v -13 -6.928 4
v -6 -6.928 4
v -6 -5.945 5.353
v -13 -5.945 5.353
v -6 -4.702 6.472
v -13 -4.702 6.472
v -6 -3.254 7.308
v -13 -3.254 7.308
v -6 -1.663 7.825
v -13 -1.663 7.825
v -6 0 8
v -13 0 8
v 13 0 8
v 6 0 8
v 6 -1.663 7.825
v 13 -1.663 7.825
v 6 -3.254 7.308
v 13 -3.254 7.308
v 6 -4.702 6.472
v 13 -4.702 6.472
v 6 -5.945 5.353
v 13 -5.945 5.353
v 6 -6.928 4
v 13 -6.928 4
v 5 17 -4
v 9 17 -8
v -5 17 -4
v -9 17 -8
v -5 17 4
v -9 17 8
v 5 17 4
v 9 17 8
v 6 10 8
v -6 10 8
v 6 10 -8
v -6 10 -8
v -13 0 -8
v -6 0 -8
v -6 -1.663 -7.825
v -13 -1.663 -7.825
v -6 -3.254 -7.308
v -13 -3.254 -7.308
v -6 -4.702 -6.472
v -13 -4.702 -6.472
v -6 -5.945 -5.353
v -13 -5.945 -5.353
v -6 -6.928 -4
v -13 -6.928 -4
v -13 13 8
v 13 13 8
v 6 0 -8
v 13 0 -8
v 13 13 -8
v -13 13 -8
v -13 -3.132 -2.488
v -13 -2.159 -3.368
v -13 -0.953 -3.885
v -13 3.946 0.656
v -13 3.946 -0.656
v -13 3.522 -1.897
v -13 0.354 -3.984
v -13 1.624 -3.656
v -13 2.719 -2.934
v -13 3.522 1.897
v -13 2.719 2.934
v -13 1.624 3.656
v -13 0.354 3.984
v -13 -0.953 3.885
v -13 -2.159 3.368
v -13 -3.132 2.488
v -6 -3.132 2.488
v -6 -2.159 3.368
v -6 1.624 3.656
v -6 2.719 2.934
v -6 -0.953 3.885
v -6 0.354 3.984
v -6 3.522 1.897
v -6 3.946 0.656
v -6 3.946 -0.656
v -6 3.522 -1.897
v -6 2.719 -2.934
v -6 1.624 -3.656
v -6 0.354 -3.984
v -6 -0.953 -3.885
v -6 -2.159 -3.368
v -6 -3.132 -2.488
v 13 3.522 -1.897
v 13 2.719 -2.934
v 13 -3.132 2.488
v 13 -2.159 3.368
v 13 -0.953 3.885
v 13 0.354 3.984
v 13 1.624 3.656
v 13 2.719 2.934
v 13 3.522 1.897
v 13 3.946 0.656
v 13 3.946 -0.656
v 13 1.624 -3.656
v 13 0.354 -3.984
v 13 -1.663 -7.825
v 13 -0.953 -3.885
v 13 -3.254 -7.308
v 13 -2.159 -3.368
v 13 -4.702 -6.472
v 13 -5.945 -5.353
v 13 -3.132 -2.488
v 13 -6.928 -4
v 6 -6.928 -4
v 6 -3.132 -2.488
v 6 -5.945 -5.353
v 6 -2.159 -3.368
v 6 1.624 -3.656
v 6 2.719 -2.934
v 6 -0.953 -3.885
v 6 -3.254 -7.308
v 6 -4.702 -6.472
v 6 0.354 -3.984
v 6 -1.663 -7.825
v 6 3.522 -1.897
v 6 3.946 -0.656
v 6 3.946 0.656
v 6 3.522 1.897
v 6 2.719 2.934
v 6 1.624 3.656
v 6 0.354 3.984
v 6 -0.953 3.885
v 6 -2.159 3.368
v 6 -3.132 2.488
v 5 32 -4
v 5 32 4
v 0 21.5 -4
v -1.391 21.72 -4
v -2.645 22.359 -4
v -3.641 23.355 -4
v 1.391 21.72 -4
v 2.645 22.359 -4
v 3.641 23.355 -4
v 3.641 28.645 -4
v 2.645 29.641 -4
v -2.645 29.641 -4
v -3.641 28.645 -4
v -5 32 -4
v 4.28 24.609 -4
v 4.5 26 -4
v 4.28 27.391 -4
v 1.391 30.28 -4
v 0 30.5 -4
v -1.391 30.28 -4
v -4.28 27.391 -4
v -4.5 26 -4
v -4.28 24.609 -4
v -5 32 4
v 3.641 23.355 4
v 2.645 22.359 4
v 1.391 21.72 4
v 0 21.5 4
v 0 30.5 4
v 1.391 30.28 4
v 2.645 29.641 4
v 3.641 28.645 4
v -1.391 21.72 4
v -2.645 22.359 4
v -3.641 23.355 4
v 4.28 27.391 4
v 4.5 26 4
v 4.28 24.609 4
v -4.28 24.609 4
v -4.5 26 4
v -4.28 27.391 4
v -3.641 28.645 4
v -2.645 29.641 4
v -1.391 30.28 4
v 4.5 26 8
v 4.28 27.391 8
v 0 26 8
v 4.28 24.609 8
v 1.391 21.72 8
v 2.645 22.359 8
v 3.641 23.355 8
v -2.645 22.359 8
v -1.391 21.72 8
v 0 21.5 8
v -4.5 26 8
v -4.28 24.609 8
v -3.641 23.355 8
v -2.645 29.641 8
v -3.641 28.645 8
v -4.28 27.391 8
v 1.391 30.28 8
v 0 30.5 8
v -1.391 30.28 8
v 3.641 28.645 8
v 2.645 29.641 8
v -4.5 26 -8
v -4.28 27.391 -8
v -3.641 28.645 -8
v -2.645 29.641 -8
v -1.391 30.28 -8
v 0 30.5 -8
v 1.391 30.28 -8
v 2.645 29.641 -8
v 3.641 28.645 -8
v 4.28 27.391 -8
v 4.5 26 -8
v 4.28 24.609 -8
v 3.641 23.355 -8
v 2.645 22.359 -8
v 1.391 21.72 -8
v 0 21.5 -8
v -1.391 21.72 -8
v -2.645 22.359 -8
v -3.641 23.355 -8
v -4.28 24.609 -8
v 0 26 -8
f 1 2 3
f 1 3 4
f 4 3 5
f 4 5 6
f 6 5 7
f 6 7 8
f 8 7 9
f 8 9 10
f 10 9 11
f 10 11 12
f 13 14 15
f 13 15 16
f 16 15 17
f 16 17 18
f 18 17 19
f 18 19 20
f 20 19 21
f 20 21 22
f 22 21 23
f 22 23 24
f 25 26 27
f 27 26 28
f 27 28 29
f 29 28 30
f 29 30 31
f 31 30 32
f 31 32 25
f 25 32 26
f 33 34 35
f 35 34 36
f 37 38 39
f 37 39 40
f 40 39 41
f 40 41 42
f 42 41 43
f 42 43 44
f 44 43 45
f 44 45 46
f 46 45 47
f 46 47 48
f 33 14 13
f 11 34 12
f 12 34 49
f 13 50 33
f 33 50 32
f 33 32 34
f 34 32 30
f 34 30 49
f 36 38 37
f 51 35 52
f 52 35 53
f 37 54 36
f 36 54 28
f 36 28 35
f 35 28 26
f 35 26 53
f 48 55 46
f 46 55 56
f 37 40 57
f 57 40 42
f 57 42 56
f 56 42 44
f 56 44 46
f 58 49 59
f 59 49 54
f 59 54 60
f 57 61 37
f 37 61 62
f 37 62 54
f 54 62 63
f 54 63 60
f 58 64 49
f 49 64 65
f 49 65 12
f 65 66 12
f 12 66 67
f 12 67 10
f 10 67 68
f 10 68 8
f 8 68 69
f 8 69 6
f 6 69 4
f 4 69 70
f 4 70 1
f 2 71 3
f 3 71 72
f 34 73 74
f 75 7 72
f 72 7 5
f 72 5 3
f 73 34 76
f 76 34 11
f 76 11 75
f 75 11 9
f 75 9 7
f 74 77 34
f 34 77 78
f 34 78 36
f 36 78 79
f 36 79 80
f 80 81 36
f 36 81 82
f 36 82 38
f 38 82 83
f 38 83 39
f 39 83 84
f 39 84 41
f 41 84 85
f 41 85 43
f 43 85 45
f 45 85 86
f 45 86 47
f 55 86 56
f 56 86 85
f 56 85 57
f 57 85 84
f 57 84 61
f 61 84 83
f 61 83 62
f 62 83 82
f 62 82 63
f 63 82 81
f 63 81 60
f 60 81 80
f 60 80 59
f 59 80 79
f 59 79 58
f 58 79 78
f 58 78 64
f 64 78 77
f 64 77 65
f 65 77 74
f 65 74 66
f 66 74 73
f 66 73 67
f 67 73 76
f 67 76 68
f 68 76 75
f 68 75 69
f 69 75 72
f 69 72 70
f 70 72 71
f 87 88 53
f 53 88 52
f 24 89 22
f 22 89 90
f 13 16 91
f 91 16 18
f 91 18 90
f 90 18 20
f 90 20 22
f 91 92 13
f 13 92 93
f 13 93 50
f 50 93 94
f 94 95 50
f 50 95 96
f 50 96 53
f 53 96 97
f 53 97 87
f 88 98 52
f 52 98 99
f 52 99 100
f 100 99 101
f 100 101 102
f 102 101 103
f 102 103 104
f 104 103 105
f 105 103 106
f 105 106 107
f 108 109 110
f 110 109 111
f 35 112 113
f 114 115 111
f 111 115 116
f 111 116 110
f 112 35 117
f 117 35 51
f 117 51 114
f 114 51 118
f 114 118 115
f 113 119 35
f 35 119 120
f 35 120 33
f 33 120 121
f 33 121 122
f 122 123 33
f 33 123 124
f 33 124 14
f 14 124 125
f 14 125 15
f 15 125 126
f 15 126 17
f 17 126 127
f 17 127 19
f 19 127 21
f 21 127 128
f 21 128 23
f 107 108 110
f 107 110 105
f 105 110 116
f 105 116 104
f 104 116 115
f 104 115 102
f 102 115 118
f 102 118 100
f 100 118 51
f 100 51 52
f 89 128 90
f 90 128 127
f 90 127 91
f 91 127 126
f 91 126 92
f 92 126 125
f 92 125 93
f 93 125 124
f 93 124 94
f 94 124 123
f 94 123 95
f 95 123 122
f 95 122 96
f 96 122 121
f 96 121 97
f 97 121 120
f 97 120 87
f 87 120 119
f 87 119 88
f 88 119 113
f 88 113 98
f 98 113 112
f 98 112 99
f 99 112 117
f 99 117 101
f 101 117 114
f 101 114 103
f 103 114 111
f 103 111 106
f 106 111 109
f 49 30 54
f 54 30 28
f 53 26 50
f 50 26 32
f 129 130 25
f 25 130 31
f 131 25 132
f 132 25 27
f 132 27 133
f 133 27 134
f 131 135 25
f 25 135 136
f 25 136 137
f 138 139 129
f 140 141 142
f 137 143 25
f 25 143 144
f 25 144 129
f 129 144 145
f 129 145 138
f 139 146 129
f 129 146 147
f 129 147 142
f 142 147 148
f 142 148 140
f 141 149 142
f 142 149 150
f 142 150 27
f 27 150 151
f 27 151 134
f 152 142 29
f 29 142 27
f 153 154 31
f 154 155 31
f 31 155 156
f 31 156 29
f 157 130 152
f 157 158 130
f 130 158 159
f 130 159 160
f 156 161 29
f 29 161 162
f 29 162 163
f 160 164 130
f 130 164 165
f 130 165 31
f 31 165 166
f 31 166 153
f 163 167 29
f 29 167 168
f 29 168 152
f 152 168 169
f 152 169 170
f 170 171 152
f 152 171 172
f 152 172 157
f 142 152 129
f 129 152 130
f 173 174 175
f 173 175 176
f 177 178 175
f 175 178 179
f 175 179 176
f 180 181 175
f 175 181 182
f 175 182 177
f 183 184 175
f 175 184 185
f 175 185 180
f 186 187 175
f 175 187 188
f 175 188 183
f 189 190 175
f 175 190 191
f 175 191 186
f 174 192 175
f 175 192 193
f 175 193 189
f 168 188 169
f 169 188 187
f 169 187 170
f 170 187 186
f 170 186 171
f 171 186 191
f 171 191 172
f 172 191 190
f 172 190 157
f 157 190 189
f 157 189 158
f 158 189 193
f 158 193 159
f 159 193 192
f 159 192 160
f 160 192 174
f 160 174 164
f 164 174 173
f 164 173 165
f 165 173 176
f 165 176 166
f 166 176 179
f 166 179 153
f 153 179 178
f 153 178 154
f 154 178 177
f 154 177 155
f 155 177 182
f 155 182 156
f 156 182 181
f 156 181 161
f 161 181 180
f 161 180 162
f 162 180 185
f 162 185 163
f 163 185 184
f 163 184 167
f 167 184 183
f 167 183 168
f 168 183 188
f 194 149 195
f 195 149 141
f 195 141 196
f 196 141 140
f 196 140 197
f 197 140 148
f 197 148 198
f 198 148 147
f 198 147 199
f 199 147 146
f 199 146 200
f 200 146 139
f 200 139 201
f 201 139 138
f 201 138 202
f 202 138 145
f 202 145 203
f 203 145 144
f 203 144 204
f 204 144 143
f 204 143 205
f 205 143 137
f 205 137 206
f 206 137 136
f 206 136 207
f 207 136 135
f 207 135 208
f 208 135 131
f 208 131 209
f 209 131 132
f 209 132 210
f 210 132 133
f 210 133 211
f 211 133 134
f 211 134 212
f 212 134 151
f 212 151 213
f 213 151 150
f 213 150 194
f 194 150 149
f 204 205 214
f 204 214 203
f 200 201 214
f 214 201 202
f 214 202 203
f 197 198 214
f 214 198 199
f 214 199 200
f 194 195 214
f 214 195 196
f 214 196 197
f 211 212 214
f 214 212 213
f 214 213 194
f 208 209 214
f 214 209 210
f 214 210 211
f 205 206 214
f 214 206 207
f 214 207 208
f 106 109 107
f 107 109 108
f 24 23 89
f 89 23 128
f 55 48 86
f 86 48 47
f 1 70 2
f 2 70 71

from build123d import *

# Parameters (mm, degrees)
BOSS_EXTRUDE1_START = 6
SKETCH1_R           = 4
BOSS_EXTRUDE1_DEPTH = 7
BOSS_EXTRUDE2_START = -6
SKETCH1_2_R         = 4
BOSS_EXTRUDE2_DEPTH = 7
SKETCH2_W           = 26
SKETCH2_H           = 16
BOSS_EXTRUDE3_DEPTH = 7
CHAMFER1_SIZE       = 4
SKETCH3_W           = 10
SKETCH3_H           = 8
BOSS_EXTRUDE4_DEPTH = 15
SKETCH5_R           = 4.5
BOSS_EXTRUDE5_DEPTH = 8
CUT_EXTRUDE1_REACH  = 44


with BuildPart() as part:
    # Sketch1 → Boss-Extrude1 (new body)
    with BuildSketch(Plane(origin=(0, 0, 0), x_dir=(0, 0, -1), z_dir=(1, 0, 0)).offset(BOSS_EXTRUDE1_START)):
        with BuildLine():
            Line((-8, 0), (-8, 10))
            Line((-8, 10), (8, 10))
            Line((8, 10), (8, 0))
            ThreePointArc((8, 0), (0, -8), (-8, 0))
        make_face()
        Circle(SKETCH1_R, mode=Mode.SUBTRACT)
    extrude(amount=BOSS_EXTRUDE1_DEPTH)



with BuildPart() as body_2:
    # Sketch1<2> → Boss-Extrude2 (new body)
    with BuildSketch(Plane(origin=(0, 0, 0), x_dir=(0, 0, -1), z_dir=(1, 0, 0)).offset(BOSS_EXTRUDE2_START)):
        with BuildLine():
            Line((-8, 0), (-8, 10))
            Line((-8, 10), (8, 10))
            Line((8, 10), (8, 0))
            ThreePointArc((8, 0), (0, -8), (-8, 0))
        make_face()
        Circle(SKETCH1_2_R, mode=Mode.SUBTRACT)
    extrude(amount=-BOSS_EXTRUDE2_DEPTH)


with BuildPart() as part_1:
    add(part.part)

    add(body_2.part)  # Boss-Extrude3 merges body 2
    # Sketch2 → Boss-Extrude3 (add)
    with BuildSketch(Plane(origin=(0, 10, 0), x_dir=(1, 0, 0), z_dir=(0, 1, 0))):
        Rectangle(SKETCH2_W, SKETCH2_H)
    extrude(amount=BOSS_EXTRUDE3_DEPTH)

    # Chamfer1
    chamfer1_edges = [part_1.edges().sort_by_distance(p)[0] for p in [
        (-13, 17, 0),
        (13, 17, 0),
    ]]
    chamfer(chamfer1_edges, length=CHAMFER1_SIZE)

    # Sketch3 → Boss-Extrude4 (add)
    with BuildSketch(Plane(origin=(0, 17, 0), x_dir=(1, 0, 0), z_dir=(0, 1, 0))):
        Rectangle(SKETCH3_W, SKETCH3_H)
    extrude(amount=BOSS_EXTRUDE4_DEPTH)

    # Sketch5 → Boss-Extrude5 (add, symmetric)
    with BuildSketch(Plane.XY):
        with Locations(Location((0, 26, 0), (0, 0, 180))):
            Circle(SKETCH5_R)
    extrude(amount=BOSS_EXTRUDE5_DEPTH, both=True)

    # Cut-Extrude1: up to this face of the body (flat: up to its plane)
    cut_extrude1_end = Plane(part_1.part.faces().sort_by_distance((13, 6.5, 7.735992424))[0])
    # Sketch6 → Cut-Extrude1 (cut, up to the picked face)
    with BuildSketch(Plane.ZY.offset(13), mode=Mode.PRIVATE) as cut_extrude1_sk1:
        with BuildLine():
            Line((-2.488370132, -3.13177491), (-4, -6.92820323))
            ThreePointArc((-4, -6.92820323), (0, -8), (4, -6.92820323))
            Line((4, -6.92820323), (2.488370132, -3.13177491))
            ThreePointArc((2.488370132, -3.13177491), (0, -4), (-2.488370132, -3.13177491))
        make_face()
    cut_extrude1_tool1 = split(extrude(cut_extrude1_sk1.sketch, amount=-CUT_EXTRUDE1_REACH, mode=Mode.PRIVATE), bisect_by=cut_extrude1_end, keep=Keep.BOTH, mode=Mode.PRIVATE)
    add(cut_extrude1_tool1.solids().sort_by(Axis((-13, -5.819668, 0), (1, 0, 0)))[0], mode=Mode.SUBTRACT)


solid = part_1.part
